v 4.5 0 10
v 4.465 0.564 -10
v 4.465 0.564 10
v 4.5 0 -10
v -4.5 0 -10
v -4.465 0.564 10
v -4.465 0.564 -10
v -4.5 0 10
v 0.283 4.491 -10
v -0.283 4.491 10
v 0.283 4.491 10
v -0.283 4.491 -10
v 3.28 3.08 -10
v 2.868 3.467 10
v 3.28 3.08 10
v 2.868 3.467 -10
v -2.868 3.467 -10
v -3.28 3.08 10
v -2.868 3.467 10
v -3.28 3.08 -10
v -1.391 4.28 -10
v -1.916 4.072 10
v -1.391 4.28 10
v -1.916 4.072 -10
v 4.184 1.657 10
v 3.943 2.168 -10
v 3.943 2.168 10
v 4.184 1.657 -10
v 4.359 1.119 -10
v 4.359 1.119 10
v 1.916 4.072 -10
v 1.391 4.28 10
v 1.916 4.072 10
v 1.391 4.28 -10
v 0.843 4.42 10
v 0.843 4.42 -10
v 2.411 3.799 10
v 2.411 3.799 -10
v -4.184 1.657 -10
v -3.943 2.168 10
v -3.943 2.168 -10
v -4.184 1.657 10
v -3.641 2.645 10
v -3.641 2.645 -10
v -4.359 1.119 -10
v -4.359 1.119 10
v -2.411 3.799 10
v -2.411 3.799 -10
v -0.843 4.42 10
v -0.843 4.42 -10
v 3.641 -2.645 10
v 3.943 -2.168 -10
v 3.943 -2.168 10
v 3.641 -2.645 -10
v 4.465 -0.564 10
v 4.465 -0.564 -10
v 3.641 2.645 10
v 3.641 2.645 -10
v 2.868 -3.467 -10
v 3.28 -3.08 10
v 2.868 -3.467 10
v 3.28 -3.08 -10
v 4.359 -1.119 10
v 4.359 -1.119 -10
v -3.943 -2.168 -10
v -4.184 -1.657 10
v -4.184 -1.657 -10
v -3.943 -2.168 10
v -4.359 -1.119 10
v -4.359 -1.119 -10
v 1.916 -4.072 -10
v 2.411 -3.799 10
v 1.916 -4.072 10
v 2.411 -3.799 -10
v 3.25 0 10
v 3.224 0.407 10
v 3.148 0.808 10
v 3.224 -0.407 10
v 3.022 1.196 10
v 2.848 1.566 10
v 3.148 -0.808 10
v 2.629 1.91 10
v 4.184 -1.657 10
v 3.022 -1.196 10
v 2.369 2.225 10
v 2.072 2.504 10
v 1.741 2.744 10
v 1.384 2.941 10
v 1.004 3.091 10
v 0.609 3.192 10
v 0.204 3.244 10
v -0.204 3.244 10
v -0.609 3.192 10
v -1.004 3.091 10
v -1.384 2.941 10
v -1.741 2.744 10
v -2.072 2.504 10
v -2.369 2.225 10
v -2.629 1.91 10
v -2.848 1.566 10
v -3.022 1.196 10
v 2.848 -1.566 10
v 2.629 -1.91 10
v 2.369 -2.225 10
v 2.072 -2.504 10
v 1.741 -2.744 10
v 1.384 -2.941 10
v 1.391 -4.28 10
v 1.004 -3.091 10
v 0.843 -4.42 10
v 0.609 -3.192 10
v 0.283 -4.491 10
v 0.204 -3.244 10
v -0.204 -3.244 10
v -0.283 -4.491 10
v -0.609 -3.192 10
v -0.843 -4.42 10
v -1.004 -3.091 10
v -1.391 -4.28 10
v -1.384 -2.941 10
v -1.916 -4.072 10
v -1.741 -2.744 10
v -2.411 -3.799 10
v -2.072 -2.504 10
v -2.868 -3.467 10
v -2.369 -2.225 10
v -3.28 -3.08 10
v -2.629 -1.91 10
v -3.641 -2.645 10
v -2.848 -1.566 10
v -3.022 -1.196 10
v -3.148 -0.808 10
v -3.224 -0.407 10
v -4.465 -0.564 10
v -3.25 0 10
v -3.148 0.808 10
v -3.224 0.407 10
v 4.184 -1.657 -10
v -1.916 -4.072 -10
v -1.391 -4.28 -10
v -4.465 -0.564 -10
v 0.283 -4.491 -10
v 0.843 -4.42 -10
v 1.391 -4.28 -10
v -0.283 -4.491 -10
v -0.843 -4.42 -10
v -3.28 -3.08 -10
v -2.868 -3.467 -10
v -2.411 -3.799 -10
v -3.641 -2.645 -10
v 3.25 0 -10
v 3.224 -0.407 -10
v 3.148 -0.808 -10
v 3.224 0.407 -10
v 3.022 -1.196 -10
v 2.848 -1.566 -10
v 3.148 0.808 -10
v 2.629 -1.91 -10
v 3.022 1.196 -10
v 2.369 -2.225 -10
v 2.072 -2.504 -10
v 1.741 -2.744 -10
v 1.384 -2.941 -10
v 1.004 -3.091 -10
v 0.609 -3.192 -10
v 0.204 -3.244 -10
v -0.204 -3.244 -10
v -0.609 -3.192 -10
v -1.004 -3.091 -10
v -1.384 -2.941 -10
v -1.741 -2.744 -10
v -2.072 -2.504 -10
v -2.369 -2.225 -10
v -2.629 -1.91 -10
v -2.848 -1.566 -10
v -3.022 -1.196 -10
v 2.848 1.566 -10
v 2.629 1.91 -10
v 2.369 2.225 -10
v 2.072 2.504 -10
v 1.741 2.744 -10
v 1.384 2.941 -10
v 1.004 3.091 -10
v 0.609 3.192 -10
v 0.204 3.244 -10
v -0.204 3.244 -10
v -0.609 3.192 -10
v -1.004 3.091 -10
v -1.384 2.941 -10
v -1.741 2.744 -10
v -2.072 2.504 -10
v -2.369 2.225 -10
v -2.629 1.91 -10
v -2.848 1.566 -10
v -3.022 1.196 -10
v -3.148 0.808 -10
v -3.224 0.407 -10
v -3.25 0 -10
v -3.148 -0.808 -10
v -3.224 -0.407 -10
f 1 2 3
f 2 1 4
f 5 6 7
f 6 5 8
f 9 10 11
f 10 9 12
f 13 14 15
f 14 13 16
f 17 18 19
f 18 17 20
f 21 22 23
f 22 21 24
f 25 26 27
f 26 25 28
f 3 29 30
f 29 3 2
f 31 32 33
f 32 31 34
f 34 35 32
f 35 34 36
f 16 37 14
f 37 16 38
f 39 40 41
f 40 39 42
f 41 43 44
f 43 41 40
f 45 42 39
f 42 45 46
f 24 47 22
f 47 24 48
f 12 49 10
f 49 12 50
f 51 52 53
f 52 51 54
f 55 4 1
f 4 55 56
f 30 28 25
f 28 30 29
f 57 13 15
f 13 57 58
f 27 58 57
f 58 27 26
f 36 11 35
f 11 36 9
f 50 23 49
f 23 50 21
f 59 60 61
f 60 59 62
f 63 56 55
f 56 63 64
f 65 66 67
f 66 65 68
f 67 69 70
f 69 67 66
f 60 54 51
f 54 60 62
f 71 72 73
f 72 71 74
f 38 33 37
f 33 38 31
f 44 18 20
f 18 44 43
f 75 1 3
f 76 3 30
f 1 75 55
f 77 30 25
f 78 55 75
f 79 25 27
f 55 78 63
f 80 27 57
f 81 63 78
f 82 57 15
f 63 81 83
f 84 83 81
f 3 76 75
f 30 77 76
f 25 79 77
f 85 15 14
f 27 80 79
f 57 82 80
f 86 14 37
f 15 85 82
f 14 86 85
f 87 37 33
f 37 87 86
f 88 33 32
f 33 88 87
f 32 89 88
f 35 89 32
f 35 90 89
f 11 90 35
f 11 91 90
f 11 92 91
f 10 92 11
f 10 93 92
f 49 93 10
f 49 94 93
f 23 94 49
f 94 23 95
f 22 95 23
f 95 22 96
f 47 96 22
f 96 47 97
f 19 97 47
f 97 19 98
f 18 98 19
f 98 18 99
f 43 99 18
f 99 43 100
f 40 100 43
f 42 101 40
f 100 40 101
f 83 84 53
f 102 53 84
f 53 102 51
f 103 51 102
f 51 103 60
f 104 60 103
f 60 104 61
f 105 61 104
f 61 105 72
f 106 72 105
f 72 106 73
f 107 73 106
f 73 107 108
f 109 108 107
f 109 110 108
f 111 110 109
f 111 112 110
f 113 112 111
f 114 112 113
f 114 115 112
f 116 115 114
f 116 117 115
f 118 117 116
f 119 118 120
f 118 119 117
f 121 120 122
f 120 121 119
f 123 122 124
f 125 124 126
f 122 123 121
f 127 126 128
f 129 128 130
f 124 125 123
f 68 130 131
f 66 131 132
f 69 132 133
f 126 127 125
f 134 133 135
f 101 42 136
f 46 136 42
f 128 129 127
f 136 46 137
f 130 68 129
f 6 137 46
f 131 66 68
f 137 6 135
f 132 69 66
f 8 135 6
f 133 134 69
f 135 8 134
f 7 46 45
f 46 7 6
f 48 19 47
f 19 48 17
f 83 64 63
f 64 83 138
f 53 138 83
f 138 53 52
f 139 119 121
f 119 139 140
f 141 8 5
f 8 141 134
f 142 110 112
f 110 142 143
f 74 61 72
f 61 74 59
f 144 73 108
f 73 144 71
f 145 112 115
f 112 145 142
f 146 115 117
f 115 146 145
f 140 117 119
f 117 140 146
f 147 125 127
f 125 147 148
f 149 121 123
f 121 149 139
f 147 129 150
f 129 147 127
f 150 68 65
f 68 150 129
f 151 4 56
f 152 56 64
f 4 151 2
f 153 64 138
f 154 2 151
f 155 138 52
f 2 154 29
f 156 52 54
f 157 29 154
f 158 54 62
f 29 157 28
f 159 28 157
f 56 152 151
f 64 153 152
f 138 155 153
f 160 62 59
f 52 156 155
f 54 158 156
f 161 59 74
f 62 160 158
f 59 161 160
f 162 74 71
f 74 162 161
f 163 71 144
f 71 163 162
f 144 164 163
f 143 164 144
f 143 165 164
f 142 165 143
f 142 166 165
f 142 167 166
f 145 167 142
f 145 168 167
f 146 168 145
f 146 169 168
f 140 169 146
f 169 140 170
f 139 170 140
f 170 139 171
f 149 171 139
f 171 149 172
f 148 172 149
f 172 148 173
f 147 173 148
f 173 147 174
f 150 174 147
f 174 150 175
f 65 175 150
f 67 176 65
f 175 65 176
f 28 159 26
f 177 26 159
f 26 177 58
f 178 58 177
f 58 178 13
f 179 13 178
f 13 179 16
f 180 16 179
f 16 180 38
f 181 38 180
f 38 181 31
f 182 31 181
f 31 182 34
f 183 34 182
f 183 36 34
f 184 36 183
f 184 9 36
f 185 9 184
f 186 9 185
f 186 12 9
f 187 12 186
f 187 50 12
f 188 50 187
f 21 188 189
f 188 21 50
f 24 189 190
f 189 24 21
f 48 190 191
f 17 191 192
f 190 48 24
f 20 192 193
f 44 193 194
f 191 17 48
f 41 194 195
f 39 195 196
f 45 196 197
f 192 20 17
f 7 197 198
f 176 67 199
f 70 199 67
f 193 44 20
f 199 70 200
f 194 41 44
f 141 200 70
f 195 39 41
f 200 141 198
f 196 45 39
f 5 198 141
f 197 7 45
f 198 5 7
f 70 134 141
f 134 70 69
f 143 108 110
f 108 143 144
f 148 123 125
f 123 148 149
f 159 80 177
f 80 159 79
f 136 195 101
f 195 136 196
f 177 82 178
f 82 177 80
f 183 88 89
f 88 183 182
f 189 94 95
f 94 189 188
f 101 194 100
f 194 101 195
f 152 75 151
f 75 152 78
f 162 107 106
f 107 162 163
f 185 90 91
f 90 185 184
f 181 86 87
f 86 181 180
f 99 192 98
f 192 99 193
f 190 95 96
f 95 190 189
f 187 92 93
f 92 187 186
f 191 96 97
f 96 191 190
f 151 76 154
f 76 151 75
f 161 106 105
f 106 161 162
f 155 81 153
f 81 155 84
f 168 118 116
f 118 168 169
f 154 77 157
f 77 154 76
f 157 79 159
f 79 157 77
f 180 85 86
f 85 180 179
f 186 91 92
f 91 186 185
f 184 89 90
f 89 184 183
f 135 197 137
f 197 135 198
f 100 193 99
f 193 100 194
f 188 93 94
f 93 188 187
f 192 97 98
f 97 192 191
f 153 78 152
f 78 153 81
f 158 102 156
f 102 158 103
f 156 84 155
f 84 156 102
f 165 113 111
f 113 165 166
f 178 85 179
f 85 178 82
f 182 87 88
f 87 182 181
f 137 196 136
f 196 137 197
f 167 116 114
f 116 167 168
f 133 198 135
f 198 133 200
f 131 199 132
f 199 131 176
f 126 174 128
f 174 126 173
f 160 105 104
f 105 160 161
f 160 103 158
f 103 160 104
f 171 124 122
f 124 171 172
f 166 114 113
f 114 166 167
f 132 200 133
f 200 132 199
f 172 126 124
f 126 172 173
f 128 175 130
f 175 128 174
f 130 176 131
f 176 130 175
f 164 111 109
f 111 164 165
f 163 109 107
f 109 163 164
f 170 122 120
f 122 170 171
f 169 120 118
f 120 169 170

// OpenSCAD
$fn = 50;


difference() {
	union() {
		translate(v = [0, 0, -10.0000000000]) {
			cylinder(h = 20, r = 4.5000000000);
		}
	}
	union() {
		translate(v = [0, 0, -100.0000000000]) {
			cylinder(h = 200, r = 3.2500000000);
		}
	}
}
